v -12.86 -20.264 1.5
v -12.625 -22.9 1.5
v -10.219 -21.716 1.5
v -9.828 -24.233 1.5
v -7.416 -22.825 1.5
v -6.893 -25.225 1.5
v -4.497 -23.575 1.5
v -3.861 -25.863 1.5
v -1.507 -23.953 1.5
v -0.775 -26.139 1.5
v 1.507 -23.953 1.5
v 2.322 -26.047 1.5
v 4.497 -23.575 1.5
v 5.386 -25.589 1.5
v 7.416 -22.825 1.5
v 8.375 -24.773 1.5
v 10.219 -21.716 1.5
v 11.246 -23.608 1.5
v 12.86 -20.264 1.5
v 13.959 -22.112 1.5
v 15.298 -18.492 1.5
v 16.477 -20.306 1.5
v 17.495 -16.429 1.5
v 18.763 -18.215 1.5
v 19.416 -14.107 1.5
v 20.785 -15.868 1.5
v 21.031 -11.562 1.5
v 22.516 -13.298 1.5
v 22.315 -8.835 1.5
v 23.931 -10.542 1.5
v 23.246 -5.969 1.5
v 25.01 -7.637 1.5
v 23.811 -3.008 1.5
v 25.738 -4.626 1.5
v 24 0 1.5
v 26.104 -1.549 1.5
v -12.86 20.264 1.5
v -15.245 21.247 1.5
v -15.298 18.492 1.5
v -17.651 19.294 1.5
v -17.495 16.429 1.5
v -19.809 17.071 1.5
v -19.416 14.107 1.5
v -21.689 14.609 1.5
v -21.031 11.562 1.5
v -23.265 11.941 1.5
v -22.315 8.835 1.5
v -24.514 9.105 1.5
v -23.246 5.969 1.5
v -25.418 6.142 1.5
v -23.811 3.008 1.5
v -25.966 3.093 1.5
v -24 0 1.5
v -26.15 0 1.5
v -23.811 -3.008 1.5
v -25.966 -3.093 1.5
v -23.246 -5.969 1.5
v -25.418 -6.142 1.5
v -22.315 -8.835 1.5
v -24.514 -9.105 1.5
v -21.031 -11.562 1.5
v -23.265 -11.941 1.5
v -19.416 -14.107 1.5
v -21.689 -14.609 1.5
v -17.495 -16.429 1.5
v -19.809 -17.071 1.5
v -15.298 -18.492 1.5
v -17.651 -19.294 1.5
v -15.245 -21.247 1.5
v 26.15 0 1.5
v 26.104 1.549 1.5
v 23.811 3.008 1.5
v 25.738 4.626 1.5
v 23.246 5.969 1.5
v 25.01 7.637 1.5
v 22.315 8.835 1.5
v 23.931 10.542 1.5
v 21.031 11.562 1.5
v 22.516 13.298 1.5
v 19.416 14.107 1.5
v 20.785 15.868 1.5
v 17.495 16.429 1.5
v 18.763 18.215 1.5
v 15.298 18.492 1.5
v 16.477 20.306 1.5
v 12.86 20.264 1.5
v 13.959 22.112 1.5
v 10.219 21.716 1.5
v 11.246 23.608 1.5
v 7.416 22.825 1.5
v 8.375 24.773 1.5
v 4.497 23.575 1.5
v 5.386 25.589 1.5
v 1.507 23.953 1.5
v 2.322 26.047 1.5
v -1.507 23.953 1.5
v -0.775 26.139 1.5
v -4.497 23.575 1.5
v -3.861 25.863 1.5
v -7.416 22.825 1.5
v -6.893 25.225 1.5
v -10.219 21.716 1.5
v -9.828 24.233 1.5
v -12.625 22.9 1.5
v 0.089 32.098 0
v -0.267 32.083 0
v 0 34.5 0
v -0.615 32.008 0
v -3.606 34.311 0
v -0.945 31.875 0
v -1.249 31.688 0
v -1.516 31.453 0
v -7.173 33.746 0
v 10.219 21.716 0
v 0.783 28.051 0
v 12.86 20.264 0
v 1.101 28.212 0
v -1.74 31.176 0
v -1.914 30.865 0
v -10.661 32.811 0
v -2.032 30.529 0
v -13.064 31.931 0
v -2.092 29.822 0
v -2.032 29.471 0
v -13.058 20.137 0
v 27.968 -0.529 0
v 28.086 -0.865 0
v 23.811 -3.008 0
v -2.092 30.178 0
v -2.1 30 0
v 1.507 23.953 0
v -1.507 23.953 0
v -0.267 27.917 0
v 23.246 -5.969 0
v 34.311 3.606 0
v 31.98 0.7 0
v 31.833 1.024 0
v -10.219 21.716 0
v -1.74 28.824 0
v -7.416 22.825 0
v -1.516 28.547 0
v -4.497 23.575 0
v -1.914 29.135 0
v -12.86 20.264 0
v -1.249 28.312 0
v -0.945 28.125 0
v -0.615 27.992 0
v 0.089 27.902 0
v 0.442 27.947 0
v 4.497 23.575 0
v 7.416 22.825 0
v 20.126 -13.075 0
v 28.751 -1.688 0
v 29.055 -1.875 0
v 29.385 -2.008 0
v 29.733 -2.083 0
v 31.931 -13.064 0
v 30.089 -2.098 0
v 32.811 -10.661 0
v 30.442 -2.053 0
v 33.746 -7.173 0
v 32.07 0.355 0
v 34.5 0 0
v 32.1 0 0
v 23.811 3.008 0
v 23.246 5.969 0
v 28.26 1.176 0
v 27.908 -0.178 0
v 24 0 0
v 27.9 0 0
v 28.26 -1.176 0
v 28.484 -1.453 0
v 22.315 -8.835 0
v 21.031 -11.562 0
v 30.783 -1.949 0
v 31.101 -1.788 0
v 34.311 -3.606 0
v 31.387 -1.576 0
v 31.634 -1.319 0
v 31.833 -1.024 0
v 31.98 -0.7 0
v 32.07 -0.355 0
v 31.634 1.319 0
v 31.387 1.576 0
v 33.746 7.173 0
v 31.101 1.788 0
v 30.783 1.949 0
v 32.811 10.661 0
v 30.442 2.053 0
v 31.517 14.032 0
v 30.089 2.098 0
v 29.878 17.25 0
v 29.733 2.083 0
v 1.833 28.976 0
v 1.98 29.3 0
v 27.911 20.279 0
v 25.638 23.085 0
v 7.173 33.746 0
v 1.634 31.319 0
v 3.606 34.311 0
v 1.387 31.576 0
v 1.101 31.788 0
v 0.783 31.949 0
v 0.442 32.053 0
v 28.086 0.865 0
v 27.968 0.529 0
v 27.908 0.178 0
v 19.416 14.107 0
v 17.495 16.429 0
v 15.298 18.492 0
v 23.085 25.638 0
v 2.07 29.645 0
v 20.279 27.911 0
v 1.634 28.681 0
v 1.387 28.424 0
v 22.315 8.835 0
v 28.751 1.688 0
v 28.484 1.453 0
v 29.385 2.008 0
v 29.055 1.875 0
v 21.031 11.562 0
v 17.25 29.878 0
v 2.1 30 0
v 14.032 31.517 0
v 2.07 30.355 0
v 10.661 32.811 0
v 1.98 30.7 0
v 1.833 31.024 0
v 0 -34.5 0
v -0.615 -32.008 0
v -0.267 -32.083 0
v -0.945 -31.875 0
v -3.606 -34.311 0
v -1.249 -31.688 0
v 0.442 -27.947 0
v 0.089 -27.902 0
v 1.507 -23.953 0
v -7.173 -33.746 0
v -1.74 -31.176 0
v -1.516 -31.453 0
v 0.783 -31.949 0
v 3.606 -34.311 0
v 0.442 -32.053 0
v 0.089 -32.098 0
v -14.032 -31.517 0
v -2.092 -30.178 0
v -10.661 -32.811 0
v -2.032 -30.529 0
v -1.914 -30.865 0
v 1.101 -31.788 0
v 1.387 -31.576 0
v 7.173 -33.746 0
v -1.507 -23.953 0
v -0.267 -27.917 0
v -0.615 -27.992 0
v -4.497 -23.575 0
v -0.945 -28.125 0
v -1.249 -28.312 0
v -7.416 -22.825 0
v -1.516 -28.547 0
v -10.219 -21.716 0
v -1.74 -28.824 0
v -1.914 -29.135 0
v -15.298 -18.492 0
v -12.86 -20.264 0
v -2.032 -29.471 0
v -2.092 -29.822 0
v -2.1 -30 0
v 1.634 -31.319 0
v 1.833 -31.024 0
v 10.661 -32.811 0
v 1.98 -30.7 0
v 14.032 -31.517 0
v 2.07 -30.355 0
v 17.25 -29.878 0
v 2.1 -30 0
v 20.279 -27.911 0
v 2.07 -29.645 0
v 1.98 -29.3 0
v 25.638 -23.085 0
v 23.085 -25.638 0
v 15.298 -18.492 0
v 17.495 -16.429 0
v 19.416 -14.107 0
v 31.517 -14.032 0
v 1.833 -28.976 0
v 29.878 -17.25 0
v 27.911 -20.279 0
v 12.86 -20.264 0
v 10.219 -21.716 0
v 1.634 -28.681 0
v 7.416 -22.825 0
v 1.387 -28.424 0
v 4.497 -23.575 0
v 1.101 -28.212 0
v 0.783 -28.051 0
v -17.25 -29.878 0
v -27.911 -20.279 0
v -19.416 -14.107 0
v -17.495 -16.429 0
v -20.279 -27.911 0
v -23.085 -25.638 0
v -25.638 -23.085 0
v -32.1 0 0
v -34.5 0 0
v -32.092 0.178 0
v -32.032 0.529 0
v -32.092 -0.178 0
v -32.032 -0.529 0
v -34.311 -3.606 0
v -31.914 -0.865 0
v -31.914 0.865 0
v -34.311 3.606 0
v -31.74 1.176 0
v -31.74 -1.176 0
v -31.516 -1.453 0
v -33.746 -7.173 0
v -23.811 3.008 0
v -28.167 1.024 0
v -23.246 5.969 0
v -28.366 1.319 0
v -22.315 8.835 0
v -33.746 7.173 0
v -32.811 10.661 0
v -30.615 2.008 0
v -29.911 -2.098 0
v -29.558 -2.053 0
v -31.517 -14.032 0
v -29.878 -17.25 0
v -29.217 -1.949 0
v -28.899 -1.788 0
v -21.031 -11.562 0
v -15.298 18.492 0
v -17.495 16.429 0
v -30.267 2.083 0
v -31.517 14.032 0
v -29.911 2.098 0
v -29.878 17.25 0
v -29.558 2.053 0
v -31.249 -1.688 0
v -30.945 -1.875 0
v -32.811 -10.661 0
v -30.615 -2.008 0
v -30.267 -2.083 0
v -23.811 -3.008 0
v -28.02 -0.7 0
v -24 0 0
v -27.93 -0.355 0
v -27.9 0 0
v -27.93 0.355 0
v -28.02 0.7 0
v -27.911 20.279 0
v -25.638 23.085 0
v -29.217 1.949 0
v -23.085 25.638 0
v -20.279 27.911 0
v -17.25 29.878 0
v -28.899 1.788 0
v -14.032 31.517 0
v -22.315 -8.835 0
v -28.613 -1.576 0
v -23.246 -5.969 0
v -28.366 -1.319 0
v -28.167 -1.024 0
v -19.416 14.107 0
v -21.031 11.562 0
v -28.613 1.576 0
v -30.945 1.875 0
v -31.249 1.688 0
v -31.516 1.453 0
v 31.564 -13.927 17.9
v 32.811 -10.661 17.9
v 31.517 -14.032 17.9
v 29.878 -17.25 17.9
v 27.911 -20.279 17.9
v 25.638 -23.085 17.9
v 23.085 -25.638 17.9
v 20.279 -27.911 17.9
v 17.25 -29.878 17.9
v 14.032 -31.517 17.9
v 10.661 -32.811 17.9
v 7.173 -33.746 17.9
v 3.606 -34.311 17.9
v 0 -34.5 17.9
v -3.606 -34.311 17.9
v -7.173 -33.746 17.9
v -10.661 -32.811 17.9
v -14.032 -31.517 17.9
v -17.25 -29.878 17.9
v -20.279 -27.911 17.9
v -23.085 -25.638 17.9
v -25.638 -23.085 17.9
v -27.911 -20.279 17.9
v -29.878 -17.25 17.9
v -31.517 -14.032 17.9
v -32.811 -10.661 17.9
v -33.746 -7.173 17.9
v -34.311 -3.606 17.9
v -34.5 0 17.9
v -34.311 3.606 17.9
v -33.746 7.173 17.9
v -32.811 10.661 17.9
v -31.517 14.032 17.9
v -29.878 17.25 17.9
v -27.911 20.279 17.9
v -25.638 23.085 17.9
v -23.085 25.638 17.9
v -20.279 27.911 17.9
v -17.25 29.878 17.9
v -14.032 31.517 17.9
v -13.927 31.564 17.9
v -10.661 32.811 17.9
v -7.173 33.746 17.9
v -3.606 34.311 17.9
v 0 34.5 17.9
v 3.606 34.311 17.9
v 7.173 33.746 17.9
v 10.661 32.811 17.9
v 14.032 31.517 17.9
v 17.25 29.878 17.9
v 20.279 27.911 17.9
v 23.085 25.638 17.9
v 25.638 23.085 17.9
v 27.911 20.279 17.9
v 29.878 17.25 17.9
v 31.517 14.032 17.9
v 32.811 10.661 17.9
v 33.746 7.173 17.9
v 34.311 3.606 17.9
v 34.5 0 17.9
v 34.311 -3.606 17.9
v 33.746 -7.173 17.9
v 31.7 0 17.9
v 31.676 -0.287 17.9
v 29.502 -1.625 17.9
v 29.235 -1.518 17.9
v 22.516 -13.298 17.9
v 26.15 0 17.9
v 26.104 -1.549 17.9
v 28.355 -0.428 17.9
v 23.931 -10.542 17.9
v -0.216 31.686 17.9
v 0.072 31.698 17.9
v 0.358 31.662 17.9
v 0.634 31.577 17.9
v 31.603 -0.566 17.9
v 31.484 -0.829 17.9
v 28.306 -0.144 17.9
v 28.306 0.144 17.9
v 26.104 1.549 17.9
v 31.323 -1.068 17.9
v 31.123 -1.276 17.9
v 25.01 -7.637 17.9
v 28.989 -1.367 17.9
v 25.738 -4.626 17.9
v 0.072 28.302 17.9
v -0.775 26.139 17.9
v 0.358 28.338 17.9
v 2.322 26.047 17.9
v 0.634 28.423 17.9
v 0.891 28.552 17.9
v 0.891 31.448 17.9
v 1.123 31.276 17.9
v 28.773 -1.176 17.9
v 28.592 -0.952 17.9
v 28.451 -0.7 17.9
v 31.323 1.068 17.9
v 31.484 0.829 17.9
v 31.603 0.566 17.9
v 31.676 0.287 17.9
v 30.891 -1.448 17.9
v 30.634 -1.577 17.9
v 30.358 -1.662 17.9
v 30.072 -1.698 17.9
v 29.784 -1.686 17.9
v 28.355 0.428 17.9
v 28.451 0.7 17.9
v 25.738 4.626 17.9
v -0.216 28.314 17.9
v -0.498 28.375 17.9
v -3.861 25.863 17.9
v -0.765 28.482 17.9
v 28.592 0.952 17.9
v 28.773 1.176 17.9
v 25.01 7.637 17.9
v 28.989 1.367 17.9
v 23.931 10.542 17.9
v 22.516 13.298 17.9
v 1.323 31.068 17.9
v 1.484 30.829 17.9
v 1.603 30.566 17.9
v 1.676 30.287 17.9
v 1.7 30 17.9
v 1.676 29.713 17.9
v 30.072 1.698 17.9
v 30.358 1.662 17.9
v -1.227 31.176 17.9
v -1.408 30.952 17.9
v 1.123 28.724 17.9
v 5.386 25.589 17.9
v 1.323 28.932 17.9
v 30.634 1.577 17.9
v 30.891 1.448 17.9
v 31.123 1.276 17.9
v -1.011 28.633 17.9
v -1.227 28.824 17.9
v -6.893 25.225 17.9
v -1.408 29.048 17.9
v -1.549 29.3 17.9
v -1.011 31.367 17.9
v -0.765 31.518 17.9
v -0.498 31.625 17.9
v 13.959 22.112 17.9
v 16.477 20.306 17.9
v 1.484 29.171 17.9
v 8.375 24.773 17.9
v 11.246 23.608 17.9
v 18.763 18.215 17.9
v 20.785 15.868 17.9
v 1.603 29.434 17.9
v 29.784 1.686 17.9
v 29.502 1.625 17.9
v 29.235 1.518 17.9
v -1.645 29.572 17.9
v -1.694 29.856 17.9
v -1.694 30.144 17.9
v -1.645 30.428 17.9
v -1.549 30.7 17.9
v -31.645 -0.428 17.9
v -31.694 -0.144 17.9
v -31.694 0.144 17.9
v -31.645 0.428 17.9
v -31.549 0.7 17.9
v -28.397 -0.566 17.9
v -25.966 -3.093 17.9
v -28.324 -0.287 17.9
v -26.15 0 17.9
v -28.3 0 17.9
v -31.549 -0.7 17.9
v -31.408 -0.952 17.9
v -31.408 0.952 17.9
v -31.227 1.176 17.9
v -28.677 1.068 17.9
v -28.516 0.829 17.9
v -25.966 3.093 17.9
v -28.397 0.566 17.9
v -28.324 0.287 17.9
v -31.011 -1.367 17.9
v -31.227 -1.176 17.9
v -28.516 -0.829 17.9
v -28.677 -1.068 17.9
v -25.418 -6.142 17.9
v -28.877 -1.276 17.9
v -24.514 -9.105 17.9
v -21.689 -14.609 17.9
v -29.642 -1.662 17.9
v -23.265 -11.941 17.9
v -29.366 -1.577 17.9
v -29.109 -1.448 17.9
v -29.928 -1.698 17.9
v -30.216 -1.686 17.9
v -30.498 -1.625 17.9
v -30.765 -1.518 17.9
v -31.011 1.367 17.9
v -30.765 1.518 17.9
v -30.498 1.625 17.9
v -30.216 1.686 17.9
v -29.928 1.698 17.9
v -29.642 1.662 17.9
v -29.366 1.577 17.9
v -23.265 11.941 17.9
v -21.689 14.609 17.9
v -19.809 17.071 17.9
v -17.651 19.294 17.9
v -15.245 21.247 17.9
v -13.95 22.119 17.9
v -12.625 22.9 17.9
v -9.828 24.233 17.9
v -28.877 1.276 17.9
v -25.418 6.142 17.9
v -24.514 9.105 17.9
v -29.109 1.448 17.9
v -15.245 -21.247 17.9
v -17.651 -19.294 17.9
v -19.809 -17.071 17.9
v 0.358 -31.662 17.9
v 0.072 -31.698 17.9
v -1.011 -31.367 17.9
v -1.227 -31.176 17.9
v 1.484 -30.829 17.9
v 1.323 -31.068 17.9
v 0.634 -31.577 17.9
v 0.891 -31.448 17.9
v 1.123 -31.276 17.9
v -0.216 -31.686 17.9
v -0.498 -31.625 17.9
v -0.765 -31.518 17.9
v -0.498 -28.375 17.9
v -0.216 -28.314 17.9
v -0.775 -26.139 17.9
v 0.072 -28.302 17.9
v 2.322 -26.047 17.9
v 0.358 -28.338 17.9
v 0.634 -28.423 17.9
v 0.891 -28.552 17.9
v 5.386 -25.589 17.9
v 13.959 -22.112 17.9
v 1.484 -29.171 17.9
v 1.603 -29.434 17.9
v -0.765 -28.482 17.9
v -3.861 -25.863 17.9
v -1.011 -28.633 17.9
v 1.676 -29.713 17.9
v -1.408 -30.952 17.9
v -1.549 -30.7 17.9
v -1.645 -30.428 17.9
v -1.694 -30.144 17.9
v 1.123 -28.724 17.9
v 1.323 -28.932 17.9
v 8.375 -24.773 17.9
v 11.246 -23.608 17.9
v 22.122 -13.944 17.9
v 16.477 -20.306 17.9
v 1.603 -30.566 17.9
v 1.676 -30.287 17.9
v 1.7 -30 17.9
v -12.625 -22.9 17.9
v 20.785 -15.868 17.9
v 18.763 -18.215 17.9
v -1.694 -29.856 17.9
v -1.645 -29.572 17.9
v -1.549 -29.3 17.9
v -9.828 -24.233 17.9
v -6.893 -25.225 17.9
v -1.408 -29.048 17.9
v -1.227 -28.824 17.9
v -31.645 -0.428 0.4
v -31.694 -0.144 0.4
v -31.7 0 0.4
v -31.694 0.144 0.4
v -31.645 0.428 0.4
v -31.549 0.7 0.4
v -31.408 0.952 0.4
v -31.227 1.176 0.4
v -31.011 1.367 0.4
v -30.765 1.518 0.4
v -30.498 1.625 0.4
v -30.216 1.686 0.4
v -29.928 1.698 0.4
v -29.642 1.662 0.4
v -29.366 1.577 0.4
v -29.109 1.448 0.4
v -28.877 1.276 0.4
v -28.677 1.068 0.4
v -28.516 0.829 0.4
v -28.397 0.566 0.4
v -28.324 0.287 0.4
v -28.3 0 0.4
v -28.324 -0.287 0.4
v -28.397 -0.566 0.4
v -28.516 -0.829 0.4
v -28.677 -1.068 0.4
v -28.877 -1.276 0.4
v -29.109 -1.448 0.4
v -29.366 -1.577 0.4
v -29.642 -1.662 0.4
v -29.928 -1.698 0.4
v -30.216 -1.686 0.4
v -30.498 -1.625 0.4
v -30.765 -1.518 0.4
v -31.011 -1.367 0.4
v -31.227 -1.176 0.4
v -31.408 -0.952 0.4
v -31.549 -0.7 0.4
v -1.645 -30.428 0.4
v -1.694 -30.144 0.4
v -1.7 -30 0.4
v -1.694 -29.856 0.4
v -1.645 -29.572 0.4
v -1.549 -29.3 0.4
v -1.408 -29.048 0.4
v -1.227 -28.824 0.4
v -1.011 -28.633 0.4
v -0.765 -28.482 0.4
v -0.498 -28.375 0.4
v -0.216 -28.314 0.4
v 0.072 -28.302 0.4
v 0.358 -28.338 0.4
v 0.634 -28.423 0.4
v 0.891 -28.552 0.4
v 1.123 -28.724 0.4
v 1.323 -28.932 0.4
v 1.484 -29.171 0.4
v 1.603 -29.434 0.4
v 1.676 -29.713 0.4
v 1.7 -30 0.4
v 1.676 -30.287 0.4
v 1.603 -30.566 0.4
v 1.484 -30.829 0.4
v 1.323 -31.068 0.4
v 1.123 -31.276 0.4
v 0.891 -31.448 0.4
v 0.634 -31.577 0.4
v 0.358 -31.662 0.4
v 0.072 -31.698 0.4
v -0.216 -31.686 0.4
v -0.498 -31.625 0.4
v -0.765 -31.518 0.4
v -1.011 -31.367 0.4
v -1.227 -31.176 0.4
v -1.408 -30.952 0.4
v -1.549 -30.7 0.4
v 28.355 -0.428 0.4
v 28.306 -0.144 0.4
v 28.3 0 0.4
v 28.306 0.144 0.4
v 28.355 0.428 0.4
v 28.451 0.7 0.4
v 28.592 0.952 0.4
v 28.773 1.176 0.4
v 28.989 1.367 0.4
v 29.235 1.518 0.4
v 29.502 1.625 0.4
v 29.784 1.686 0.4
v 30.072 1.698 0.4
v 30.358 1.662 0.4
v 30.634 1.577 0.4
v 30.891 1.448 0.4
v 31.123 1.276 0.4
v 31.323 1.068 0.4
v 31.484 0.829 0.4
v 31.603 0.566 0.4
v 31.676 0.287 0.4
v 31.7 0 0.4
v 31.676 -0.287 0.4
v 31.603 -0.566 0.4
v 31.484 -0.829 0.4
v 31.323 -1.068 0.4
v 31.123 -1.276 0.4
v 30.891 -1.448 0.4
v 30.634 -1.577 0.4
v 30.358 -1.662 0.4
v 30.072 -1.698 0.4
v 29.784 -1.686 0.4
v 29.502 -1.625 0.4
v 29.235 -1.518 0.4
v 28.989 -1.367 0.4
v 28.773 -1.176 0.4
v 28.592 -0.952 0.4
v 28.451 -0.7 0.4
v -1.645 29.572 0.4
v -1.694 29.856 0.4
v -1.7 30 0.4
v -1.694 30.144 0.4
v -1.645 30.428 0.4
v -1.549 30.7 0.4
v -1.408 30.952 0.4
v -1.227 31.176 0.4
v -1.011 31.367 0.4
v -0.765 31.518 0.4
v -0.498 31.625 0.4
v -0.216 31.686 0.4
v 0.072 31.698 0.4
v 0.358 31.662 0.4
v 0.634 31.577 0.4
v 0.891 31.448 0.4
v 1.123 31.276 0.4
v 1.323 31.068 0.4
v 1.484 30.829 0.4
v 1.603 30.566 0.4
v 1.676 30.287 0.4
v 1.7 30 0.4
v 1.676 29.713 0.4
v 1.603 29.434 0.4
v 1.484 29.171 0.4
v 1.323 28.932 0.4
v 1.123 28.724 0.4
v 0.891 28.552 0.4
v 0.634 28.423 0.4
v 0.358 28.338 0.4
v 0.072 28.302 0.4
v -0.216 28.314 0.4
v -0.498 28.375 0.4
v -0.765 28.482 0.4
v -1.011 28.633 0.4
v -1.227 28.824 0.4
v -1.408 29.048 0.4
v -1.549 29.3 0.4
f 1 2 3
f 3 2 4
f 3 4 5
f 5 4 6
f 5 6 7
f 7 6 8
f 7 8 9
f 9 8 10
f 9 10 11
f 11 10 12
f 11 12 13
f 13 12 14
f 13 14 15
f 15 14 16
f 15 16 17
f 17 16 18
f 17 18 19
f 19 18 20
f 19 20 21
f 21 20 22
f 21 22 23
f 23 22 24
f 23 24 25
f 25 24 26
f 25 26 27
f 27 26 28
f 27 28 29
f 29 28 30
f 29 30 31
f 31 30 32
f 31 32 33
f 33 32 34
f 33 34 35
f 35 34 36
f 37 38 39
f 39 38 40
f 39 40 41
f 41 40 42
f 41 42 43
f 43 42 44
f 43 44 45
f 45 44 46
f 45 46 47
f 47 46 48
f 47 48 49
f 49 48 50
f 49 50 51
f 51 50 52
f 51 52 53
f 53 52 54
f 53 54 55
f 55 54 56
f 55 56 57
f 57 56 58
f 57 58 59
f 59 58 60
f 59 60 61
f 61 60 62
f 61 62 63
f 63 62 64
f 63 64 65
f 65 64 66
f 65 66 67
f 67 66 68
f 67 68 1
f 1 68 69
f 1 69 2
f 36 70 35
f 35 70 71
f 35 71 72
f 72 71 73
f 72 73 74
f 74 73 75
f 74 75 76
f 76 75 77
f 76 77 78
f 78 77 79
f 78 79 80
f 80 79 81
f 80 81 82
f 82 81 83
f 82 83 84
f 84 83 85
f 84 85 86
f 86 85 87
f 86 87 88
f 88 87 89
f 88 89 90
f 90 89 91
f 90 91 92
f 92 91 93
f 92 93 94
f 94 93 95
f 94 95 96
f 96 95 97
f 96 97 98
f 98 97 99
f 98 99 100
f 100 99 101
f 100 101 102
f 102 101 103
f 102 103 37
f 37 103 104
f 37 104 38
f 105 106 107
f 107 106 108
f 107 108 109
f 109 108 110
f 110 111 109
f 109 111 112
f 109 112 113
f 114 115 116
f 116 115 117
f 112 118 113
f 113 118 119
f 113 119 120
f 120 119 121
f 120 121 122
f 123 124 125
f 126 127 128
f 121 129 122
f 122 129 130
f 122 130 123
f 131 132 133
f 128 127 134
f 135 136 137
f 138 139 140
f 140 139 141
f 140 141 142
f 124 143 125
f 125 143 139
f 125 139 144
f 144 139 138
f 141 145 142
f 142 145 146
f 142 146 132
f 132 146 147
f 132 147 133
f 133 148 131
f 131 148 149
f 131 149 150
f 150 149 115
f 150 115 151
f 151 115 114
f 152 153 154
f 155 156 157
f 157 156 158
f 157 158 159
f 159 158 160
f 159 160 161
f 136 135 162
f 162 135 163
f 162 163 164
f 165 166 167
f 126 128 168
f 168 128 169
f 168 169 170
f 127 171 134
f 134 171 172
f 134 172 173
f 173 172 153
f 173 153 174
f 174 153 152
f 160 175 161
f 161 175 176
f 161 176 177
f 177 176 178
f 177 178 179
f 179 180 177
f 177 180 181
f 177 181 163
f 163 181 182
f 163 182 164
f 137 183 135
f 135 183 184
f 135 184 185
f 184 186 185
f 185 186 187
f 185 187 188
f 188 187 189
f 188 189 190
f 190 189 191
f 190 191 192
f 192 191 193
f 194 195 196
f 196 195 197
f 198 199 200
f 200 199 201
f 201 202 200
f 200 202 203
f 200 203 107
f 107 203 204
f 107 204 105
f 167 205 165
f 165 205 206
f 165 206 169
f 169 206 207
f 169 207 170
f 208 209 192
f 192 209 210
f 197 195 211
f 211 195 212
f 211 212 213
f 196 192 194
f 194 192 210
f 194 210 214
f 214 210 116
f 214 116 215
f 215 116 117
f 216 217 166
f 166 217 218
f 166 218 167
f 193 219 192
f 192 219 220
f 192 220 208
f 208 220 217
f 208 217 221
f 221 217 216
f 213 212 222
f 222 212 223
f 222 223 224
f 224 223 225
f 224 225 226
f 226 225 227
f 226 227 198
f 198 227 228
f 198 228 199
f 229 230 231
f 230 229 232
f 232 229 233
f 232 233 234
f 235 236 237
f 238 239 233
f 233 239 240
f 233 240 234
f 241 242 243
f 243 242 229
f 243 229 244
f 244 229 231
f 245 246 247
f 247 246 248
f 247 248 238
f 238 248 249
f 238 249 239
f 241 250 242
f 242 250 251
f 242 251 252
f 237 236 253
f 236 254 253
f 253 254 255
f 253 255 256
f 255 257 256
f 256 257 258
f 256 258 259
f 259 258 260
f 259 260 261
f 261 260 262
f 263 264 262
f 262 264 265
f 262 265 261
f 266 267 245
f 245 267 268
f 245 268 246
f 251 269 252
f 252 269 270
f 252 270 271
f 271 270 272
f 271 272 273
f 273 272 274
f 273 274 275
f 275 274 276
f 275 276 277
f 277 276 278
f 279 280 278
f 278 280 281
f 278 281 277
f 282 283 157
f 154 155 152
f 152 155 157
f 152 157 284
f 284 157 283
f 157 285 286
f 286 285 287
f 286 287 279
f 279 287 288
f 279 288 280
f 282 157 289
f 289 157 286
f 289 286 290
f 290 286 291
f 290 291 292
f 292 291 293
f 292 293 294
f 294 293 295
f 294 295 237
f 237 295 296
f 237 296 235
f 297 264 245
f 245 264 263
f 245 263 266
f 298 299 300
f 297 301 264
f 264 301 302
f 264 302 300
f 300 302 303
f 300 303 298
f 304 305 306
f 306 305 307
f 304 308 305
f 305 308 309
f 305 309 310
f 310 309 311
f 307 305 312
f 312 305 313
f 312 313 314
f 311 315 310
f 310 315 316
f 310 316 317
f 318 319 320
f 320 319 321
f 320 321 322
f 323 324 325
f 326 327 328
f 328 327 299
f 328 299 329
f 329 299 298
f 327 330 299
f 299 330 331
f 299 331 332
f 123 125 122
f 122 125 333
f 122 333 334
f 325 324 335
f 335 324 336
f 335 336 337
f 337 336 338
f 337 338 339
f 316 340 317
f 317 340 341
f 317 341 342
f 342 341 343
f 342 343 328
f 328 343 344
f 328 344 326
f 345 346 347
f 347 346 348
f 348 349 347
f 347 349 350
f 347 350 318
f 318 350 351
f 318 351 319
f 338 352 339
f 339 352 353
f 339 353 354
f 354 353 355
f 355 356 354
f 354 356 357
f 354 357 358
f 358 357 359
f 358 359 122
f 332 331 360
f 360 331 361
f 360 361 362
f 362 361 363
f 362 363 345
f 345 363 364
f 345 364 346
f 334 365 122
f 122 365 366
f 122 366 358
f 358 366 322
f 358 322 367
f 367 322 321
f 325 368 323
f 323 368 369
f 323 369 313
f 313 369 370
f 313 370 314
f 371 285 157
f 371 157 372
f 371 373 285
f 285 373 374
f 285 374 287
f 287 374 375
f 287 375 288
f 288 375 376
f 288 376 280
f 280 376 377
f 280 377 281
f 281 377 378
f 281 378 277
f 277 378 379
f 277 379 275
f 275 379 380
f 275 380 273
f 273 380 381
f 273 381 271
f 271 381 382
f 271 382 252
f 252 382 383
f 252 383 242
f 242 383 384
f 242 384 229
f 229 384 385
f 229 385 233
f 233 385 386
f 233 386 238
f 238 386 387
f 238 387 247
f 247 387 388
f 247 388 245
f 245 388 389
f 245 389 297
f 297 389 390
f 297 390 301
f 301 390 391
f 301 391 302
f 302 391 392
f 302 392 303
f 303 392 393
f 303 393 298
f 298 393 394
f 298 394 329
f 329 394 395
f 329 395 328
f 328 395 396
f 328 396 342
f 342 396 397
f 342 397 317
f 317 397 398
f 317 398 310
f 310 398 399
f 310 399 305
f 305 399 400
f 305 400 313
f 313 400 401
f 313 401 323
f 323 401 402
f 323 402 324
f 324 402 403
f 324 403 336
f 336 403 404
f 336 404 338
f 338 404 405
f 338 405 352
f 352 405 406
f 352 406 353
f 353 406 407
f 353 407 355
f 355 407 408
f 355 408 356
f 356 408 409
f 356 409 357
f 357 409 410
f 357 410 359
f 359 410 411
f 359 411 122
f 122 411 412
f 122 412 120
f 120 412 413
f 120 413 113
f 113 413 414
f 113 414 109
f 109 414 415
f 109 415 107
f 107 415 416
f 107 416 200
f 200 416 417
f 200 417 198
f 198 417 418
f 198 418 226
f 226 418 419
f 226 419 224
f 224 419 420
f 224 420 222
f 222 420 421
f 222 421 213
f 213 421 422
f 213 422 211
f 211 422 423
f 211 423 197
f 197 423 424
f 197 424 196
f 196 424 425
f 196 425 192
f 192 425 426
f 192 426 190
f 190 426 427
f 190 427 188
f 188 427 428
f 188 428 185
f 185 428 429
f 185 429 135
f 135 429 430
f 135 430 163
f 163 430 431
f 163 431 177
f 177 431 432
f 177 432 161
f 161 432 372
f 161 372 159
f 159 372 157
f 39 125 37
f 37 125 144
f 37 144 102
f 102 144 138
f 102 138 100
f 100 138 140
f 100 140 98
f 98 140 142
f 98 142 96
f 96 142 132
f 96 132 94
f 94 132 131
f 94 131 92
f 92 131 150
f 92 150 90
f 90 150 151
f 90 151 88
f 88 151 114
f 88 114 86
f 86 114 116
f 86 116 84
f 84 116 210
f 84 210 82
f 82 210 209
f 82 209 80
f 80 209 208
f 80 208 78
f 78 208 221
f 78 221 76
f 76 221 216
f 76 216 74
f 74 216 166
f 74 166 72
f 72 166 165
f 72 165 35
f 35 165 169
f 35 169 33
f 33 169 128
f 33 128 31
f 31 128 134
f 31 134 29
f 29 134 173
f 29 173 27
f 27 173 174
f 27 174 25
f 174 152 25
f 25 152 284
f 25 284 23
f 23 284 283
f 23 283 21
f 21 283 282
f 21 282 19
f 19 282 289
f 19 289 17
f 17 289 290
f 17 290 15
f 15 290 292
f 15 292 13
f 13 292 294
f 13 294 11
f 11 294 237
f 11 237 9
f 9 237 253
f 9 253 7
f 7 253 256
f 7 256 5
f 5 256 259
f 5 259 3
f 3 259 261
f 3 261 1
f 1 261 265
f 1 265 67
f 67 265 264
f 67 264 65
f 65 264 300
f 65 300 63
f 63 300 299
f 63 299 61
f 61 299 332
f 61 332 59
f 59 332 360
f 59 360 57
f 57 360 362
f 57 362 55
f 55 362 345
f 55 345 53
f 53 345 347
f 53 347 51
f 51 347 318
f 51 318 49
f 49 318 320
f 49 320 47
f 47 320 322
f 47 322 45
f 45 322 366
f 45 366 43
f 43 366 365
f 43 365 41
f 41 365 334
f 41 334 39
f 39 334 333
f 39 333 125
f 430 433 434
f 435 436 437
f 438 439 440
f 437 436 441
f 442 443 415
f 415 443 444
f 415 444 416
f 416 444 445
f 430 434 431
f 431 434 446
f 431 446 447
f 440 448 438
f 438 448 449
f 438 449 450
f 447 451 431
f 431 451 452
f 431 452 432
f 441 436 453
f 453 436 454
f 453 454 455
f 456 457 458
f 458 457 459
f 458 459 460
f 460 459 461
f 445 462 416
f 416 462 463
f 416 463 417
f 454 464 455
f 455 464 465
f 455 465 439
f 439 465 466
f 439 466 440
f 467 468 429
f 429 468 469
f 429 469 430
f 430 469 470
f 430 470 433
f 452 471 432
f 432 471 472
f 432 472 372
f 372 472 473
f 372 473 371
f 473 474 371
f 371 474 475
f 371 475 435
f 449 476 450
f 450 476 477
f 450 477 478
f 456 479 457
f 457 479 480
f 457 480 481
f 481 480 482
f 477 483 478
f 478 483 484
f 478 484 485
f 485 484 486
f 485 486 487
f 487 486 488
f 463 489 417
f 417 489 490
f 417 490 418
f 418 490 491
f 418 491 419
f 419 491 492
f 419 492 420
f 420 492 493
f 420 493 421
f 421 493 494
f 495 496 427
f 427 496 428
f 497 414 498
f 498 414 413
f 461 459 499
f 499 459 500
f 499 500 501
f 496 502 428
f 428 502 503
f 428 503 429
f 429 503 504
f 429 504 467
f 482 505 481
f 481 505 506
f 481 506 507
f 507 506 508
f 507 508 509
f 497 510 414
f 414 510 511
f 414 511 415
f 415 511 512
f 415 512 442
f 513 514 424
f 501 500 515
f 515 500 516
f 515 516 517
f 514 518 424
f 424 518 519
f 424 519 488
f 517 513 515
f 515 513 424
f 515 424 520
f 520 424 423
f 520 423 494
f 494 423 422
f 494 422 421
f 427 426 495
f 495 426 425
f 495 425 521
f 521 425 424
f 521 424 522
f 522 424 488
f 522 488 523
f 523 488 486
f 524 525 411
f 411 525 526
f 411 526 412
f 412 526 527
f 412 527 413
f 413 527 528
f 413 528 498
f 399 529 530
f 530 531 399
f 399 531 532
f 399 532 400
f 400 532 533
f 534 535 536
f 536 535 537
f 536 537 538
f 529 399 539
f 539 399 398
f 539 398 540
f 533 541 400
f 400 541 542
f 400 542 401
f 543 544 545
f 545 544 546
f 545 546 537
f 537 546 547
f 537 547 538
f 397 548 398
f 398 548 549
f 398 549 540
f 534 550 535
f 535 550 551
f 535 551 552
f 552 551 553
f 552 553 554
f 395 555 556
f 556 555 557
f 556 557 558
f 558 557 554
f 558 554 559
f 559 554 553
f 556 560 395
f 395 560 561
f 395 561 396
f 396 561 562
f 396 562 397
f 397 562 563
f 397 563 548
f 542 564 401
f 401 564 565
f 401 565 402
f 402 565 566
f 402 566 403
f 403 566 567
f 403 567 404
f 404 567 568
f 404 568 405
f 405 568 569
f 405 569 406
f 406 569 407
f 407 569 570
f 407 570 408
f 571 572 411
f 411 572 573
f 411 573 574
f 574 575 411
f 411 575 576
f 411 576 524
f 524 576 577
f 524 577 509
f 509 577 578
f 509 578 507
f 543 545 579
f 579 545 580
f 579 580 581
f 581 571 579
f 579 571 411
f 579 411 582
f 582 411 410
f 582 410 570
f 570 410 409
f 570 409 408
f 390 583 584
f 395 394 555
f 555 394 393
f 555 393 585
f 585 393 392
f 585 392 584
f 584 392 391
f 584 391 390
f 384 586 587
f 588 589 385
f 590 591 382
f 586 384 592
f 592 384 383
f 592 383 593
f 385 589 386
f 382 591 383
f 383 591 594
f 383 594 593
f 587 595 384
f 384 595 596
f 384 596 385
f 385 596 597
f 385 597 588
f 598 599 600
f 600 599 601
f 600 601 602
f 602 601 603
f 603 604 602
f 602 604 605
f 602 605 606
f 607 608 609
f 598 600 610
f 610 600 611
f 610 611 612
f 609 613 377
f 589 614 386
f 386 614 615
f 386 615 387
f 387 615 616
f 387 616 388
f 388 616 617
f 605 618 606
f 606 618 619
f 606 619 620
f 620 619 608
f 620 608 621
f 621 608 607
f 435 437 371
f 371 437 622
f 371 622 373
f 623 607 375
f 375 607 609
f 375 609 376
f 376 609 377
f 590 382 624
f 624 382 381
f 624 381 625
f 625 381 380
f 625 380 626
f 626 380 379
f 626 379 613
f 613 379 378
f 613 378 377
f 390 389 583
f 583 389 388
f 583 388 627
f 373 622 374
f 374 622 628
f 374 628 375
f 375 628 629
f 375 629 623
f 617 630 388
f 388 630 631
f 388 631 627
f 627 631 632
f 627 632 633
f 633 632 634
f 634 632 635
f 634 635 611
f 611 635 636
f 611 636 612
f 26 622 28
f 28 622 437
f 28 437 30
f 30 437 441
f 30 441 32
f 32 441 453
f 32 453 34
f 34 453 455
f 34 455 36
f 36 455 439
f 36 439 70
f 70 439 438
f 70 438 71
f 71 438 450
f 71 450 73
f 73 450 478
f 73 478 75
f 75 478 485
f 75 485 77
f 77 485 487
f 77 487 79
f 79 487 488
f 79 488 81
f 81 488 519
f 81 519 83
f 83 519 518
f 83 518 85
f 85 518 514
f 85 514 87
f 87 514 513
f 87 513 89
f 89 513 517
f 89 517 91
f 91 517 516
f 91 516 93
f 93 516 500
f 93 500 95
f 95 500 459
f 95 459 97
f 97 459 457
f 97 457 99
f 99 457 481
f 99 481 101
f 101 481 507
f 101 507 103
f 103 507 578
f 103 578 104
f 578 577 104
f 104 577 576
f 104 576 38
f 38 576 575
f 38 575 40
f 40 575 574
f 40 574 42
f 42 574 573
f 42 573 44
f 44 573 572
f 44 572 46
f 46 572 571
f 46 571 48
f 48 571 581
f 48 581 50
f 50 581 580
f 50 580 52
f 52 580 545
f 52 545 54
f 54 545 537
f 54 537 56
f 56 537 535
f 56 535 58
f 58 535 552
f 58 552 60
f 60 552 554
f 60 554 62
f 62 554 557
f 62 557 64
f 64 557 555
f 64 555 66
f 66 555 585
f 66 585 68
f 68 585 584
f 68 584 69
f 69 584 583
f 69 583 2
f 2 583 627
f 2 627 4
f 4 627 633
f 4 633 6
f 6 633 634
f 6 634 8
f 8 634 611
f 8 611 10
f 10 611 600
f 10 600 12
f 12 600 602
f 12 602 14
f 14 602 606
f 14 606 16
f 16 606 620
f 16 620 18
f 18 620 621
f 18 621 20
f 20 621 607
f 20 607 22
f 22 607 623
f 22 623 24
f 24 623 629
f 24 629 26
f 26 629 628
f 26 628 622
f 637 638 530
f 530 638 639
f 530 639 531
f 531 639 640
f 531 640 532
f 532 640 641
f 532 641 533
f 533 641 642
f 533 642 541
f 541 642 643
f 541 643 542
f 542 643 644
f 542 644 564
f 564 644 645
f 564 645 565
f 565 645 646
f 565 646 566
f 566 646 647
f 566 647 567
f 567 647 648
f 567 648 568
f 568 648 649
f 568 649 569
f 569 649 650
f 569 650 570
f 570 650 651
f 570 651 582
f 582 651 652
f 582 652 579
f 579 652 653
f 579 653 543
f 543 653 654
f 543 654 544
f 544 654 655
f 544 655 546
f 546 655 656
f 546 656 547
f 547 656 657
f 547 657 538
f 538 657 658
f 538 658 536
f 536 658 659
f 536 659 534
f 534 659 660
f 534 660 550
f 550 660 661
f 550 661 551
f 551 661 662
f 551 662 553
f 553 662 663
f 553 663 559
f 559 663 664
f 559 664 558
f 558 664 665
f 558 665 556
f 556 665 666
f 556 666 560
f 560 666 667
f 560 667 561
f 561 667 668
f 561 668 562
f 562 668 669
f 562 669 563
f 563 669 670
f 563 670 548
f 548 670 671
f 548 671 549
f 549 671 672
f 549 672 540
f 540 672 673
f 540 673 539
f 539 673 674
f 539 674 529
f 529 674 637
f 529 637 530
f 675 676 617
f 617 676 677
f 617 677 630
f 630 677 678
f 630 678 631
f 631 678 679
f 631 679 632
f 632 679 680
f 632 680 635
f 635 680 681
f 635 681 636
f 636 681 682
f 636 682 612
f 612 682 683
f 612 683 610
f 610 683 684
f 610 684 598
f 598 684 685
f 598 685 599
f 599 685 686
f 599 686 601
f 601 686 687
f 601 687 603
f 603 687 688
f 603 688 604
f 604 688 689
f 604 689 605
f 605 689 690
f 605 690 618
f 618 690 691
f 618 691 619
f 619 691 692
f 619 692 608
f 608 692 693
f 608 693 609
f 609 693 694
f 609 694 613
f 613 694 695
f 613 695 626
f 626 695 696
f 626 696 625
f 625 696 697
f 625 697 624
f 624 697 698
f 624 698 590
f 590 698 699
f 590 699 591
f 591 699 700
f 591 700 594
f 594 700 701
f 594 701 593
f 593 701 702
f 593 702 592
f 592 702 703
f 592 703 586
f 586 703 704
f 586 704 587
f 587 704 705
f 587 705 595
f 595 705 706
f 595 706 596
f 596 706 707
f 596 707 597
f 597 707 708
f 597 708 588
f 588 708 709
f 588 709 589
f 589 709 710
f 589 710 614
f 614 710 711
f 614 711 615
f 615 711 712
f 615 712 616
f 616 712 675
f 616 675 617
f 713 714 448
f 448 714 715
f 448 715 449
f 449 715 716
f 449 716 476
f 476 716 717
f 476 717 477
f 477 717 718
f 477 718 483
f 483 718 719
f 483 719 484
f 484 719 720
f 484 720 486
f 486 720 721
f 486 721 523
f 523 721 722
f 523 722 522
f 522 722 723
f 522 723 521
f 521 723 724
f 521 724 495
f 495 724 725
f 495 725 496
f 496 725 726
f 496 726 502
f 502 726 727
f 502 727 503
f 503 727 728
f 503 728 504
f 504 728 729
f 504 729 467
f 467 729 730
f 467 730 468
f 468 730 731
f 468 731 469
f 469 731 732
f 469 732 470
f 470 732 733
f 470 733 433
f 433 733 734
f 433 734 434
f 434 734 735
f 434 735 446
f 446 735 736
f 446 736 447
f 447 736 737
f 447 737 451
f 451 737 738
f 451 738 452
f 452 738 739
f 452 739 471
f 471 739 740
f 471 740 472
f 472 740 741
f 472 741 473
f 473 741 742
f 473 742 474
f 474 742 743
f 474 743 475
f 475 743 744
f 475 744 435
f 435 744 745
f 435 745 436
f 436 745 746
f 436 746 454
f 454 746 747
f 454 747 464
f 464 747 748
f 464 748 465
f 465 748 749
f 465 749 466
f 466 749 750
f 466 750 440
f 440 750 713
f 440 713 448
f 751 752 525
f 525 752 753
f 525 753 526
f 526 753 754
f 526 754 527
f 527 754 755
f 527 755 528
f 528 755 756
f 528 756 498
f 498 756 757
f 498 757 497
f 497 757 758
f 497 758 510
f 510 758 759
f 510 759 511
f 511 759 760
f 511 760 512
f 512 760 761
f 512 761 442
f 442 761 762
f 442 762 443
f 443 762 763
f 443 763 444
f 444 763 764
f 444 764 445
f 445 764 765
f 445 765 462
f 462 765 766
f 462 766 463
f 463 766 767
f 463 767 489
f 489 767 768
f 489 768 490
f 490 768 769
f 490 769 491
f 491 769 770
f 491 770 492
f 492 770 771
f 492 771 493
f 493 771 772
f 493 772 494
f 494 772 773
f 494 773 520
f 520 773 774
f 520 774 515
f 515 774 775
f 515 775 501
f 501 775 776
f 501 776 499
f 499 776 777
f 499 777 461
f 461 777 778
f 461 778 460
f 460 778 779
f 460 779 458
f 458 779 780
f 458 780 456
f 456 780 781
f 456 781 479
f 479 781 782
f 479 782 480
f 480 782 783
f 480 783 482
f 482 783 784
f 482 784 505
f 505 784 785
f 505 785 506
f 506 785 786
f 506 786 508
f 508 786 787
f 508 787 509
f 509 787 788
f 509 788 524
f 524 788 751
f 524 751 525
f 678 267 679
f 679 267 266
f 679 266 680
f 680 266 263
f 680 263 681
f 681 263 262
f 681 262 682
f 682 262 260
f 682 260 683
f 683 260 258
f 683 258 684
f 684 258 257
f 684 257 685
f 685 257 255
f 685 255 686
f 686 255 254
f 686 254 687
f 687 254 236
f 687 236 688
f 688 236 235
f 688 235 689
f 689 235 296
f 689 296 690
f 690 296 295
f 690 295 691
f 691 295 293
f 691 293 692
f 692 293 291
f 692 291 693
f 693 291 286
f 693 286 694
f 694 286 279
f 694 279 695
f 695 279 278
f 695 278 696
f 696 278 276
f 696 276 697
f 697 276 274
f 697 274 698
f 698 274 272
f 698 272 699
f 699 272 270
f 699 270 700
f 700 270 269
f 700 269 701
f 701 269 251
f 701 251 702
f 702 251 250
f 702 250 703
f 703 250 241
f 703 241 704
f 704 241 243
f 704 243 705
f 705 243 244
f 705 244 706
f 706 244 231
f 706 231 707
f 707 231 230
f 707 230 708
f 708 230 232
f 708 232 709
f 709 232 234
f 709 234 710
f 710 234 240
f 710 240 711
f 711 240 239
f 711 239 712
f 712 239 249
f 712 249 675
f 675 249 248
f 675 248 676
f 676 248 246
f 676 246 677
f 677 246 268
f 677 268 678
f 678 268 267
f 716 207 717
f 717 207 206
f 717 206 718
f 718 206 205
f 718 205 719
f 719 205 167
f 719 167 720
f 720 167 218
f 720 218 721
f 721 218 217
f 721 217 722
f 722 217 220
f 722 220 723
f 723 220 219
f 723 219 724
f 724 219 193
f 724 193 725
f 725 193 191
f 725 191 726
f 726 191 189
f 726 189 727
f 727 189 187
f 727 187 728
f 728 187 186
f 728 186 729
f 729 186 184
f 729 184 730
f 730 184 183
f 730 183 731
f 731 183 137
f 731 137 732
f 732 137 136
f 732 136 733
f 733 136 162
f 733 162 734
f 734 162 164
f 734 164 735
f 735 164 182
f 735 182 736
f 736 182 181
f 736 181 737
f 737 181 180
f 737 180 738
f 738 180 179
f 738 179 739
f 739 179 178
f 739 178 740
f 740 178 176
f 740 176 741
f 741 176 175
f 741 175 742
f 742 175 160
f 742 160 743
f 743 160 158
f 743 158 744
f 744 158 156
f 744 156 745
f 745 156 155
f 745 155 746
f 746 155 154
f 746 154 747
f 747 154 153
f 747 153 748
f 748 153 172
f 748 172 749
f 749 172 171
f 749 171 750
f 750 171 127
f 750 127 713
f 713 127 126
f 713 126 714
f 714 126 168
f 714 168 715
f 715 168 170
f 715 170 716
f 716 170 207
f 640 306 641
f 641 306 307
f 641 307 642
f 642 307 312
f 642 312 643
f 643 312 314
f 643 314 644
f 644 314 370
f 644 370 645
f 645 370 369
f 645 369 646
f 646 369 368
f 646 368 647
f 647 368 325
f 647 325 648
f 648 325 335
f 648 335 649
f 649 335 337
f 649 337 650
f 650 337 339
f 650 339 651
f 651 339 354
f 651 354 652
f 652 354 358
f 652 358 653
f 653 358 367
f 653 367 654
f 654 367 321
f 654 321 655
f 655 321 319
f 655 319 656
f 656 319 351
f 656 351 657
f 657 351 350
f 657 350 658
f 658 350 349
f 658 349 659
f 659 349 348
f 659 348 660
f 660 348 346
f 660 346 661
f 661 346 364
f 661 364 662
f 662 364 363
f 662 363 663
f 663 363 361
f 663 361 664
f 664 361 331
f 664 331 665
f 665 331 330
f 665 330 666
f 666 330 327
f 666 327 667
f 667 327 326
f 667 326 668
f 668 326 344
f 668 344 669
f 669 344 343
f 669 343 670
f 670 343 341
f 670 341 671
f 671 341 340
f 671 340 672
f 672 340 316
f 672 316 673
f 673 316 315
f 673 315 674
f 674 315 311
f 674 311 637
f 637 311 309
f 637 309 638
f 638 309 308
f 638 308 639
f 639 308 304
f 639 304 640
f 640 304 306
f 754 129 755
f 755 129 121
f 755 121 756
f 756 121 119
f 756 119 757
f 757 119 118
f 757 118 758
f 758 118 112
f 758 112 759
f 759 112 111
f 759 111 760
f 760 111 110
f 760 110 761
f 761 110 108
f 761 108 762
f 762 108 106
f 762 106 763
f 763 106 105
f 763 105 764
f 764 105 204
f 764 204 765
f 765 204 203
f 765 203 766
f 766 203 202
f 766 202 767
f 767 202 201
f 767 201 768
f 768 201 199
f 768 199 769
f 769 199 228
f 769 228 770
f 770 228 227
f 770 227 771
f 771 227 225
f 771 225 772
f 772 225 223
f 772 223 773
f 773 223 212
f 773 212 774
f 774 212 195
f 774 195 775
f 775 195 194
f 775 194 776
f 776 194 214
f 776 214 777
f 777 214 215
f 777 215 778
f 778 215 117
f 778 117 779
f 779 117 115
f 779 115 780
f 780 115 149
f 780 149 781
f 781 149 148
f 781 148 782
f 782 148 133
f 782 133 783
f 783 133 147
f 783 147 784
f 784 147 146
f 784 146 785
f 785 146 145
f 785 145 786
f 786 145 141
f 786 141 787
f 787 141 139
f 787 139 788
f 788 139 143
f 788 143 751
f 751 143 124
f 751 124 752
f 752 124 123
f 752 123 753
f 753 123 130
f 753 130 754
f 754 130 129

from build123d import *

# Parameters (mm, degrees)
SKETCH1_R           = 34.5
SKETCH1_R_2         = 24
BOSS_EXTRUDE1_DEPTH = 1.5
SKETCH3_R           = 34.5
SKETCH3_R_2         = 26.15
BOSS_EXTRUDE2_DEPTH = 16.4
SKETCH4_R           = 1.7
CUT_EXTRUDE1_DEPTH  = 52.970279968
CHAMFER1_SIZE       = 0.4


with BuildPart() as part:
    # Sketch1 → Boss-Extrude1 (new body)
    with BuildSketch(Plane.XY):
        Circle(SKETCH1_R)
        Circle(SKETCH1_R_2, mode=Mode.SUBTRACT)
    extrude(amount=BOSS_EXTRUDE1_DEPTH)

    # Sketch3 → Boss-Extrude2 (add)
    with BuildSketch(Plane.XY.offset(1.5)):
        Circle(SKETCH3_R)
        Circle(SKETCH3_R_2, mode=Mode.SUBTRACT)
    extrude(amount=BOSS_EXTRUDE2_DEPTH)

    # Sketch4 → Cut-Extrude1 (cut, through all)
    with BuildSketch(Plane.XY.offset(17.9)):
        with Locations((0, 30)):
            Circle(SKETCH4_R)
        with Locations((30, 0)):
            Circle(SKETCH4_R)
        with Locations((0, -30)):
            Circle(SKETCH4_R)
        with Locations((-30, 0)):
            Circle(SKETCH4_R)
    extrude(amount=-CUT_EXTRUDE1_DEPTH, mode=Mode.SUBTRACT)

    # Chamfer1
    chamfer1_edges = [part.edges().sort_by_distance(p)[0] for p in [
        (-1.7, 30, 0),
        (28.3, 0, 0),
        (-1.7, -30, 0),
        (-31.7, 0, 0),
    ]]
    chamfer(chamfer1_edges, length=CHAMFER1_SIZE)


solid = part.part
